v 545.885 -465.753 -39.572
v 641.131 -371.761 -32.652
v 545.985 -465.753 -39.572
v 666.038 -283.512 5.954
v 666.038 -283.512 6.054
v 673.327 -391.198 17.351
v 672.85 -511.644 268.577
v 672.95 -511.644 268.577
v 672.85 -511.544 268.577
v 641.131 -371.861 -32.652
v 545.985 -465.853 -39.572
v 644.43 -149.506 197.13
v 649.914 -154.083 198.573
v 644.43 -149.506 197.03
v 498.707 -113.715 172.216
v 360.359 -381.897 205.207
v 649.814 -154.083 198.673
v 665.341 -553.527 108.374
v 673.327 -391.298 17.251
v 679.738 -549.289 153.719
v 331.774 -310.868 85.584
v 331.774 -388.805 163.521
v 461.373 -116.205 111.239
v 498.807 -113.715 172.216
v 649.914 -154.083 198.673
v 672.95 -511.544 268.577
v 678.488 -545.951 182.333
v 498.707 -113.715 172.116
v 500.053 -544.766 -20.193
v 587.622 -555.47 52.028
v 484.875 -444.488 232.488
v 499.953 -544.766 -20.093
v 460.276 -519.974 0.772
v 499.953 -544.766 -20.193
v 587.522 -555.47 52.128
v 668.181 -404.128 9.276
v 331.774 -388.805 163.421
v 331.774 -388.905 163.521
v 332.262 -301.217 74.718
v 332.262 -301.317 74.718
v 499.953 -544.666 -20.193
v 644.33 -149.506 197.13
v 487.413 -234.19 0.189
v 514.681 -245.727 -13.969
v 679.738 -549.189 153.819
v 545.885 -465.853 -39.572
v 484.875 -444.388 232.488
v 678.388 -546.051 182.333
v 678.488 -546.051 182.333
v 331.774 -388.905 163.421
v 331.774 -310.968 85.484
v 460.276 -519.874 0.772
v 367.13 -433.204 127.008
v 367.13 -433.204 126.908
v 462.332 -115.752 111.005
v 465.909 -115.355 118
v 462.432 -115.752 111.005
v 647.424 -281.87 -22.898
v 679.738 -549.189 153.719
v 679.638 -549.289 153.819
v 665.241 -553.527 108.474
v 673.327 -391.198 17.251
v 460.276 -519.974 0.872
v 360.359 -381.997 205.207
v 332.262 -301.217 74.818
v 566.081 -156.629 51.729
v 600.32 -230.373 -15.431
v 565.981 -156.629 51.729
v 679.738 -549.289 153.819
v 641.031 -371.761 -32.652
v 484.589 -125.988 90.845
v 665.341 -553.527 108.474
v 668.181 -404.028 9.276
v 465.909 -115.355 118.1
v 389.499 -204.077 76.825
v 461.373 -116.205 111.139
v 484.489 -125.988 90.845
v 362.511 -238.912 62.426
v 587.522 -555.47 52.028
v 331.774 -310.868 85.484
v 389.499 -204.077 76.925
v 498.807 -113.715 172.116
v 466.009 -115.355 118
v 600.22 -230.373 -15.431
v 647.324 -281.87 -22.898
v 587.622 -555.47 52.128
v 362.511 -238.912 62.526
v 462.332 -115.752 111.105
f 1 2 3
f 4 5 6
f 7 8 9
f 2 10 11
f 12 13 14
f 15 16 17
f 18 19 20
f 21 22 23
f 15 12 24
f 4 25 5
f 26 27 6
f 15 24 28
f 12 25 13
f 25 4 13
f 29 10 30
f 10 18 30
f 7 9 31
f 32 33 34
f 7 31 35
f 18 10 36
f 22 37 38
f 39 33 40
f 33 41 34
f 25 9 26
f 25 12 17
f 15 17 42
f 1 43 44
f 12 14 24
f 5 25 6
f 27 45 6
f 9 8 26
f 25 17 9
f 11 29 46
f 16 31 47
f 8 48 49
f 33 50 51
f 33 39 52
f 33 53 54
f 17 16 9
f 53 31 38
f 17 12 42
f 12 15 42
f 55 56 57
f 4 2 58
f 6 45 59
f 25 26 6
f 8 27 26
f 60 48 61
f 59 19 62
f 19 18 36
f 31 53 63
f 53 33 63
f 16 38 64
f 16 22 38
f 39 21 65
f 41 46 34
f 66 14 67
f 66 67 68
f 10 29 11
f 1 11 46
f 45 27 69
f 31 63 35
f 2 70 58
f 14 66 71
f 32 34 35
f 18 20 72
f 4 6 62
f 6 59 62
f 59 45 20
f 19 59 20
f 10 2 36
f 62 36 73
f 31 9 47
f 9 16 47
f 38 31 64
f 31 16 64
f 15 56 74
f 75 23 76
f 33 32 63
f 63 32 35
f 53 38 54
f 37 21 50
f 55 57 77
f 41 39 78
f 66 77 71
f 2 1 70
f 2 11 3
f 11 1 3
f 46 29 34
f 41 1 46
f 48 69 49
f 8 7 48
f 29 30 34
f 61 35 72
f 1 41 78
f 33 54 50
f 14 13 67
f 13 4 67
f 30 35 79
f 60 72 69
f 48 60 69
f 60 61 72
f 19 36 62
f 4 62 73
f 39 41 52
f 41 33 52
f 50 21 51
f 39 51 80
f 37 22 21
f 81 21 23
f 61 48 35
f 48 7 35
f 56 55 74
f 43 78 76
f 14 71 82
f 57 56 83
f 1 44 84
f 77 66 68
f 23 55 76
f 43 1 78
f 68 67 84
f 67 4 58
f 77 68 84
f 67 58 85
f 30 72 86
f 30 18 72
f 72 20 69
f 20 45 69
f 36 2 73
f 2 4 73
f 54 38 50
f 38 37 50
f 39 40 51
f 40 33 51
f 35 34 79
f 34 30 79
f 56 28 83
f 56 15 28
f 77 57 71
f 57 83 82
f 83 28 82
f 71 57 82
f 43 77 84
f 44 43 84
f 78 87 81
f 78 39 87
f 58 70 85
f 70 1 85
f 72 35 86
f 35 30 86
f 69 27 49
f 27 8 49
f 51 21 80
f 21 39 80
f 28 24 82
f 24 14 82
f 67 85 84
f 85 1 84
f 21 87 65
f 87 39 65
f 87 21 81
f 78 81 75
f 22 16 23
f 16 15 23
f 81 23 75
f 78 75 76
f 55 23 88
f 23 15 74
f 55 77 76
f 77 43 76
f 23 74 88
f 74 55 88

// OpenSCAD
hull(){ translate([644.32986337,-149.606376057,197.029928432])cube(0.1,0.1,0.1);
translate([565.981308411,-156.728971963,51.7289719626])cube(0.1,0.1,0.1);
translate([673.226565328,-391.297502714,17.2511762577])cube(0.1,0.1,0.1);
translate([665.938219686,-283.612195855,5.95424051267])cube(0.1,0.1,0.1);
translate([649.813985318,-154.182530795,198.573472689])cube(0.1,0.1,0.1);
translate([679.637809187,-549.288869258,153.719081272])cube(0.1,0.1,0.1);
translate([462.332058984,-115.851993446,111.004915347])cube(0.1,0.1,0.1);
translate([484.488859764,-126.087811271,90.8453473132])cube(0.1,0.1,0.1);
translate([362.51079994,-239.011619246,62.4258900641])cube(0.1,0.1,0.1);
translate([487.413249211,-234.29022082,0.18927444795])cube(0.1,0.1,0.1);
translate([647.324169452,-281.969779658,-22.8975373491])cube(0.1,0.1,0.1);
translate([600.21978022,-230.473372781,-15.4311073542])cube(0.1,0.1,0.1);
translate([514.680851064,-245.826513912,-13.968903437])cube(0.1,0.1,0.1);
translate([545.884655532,-465.853340292,-39.5720250522])cube(0.1,0.1,0.1);
translate([668.081456366,-404.128118188,9.27625736659])cube(0.1,0.1,0.1);
translate([641.030769231,-371.860512821,-32.6523076923])cube(0.1,0.1,0.1);
translate([665.240531946,-553.527320035,108.374385661])cube(0.1,0.1,0.1);
translate([360.358896864,-381.996599924,205.106724594])cube(0.1,0.1,0.1);
translate([498.706720978,-113.814663951,172.116089613])cube(0.1,0.1,0.1);
translate([465.909090909,-115.454545455,118.0])cube(0.1,0.1,0.1);
translate([461.373198286,-116.305025321,111.139462407])cube(0.1,0.1,0.1);
translate([389.498714653,-204.177377892,76.8251928021])cube(0.1,0.1,0.1);
translate([331.774193548,-388.904569892,163.420698925])cube(0.1,0.1,0.1);
translate([331.774193548,-310.967741935,85.4838709677])cube(0.1,0.1,0.1);
translate([332.261956365,-301.317006213,74.718248808])cube(0.1,0.1,0.1);
translate([484.875475614,-444.488066413,232.388446904])cube(0.1,0.1,0.1);
translate([587.521963824,-555.470284238,52.0284237726])cube(0.1,0.1,0.1);
translate([672.850416186,-511.644389088,268.477124977])cube(0.1,0.1,0.1);
translate([678.38819173,-546.051224028,182.233079613])cube(0.1,0.1,0.1);
translate([499.953200483,-544.766002415,-20.193236715])cube(0.1,0.1,0.1);
translate([367.12962963,-433.204089506,126.90779321])cube(0.1,0.1,0.1);
translate([460.275787369,-519.974170972,0.772371271455])cube(0.1,0.1,0.1); }
